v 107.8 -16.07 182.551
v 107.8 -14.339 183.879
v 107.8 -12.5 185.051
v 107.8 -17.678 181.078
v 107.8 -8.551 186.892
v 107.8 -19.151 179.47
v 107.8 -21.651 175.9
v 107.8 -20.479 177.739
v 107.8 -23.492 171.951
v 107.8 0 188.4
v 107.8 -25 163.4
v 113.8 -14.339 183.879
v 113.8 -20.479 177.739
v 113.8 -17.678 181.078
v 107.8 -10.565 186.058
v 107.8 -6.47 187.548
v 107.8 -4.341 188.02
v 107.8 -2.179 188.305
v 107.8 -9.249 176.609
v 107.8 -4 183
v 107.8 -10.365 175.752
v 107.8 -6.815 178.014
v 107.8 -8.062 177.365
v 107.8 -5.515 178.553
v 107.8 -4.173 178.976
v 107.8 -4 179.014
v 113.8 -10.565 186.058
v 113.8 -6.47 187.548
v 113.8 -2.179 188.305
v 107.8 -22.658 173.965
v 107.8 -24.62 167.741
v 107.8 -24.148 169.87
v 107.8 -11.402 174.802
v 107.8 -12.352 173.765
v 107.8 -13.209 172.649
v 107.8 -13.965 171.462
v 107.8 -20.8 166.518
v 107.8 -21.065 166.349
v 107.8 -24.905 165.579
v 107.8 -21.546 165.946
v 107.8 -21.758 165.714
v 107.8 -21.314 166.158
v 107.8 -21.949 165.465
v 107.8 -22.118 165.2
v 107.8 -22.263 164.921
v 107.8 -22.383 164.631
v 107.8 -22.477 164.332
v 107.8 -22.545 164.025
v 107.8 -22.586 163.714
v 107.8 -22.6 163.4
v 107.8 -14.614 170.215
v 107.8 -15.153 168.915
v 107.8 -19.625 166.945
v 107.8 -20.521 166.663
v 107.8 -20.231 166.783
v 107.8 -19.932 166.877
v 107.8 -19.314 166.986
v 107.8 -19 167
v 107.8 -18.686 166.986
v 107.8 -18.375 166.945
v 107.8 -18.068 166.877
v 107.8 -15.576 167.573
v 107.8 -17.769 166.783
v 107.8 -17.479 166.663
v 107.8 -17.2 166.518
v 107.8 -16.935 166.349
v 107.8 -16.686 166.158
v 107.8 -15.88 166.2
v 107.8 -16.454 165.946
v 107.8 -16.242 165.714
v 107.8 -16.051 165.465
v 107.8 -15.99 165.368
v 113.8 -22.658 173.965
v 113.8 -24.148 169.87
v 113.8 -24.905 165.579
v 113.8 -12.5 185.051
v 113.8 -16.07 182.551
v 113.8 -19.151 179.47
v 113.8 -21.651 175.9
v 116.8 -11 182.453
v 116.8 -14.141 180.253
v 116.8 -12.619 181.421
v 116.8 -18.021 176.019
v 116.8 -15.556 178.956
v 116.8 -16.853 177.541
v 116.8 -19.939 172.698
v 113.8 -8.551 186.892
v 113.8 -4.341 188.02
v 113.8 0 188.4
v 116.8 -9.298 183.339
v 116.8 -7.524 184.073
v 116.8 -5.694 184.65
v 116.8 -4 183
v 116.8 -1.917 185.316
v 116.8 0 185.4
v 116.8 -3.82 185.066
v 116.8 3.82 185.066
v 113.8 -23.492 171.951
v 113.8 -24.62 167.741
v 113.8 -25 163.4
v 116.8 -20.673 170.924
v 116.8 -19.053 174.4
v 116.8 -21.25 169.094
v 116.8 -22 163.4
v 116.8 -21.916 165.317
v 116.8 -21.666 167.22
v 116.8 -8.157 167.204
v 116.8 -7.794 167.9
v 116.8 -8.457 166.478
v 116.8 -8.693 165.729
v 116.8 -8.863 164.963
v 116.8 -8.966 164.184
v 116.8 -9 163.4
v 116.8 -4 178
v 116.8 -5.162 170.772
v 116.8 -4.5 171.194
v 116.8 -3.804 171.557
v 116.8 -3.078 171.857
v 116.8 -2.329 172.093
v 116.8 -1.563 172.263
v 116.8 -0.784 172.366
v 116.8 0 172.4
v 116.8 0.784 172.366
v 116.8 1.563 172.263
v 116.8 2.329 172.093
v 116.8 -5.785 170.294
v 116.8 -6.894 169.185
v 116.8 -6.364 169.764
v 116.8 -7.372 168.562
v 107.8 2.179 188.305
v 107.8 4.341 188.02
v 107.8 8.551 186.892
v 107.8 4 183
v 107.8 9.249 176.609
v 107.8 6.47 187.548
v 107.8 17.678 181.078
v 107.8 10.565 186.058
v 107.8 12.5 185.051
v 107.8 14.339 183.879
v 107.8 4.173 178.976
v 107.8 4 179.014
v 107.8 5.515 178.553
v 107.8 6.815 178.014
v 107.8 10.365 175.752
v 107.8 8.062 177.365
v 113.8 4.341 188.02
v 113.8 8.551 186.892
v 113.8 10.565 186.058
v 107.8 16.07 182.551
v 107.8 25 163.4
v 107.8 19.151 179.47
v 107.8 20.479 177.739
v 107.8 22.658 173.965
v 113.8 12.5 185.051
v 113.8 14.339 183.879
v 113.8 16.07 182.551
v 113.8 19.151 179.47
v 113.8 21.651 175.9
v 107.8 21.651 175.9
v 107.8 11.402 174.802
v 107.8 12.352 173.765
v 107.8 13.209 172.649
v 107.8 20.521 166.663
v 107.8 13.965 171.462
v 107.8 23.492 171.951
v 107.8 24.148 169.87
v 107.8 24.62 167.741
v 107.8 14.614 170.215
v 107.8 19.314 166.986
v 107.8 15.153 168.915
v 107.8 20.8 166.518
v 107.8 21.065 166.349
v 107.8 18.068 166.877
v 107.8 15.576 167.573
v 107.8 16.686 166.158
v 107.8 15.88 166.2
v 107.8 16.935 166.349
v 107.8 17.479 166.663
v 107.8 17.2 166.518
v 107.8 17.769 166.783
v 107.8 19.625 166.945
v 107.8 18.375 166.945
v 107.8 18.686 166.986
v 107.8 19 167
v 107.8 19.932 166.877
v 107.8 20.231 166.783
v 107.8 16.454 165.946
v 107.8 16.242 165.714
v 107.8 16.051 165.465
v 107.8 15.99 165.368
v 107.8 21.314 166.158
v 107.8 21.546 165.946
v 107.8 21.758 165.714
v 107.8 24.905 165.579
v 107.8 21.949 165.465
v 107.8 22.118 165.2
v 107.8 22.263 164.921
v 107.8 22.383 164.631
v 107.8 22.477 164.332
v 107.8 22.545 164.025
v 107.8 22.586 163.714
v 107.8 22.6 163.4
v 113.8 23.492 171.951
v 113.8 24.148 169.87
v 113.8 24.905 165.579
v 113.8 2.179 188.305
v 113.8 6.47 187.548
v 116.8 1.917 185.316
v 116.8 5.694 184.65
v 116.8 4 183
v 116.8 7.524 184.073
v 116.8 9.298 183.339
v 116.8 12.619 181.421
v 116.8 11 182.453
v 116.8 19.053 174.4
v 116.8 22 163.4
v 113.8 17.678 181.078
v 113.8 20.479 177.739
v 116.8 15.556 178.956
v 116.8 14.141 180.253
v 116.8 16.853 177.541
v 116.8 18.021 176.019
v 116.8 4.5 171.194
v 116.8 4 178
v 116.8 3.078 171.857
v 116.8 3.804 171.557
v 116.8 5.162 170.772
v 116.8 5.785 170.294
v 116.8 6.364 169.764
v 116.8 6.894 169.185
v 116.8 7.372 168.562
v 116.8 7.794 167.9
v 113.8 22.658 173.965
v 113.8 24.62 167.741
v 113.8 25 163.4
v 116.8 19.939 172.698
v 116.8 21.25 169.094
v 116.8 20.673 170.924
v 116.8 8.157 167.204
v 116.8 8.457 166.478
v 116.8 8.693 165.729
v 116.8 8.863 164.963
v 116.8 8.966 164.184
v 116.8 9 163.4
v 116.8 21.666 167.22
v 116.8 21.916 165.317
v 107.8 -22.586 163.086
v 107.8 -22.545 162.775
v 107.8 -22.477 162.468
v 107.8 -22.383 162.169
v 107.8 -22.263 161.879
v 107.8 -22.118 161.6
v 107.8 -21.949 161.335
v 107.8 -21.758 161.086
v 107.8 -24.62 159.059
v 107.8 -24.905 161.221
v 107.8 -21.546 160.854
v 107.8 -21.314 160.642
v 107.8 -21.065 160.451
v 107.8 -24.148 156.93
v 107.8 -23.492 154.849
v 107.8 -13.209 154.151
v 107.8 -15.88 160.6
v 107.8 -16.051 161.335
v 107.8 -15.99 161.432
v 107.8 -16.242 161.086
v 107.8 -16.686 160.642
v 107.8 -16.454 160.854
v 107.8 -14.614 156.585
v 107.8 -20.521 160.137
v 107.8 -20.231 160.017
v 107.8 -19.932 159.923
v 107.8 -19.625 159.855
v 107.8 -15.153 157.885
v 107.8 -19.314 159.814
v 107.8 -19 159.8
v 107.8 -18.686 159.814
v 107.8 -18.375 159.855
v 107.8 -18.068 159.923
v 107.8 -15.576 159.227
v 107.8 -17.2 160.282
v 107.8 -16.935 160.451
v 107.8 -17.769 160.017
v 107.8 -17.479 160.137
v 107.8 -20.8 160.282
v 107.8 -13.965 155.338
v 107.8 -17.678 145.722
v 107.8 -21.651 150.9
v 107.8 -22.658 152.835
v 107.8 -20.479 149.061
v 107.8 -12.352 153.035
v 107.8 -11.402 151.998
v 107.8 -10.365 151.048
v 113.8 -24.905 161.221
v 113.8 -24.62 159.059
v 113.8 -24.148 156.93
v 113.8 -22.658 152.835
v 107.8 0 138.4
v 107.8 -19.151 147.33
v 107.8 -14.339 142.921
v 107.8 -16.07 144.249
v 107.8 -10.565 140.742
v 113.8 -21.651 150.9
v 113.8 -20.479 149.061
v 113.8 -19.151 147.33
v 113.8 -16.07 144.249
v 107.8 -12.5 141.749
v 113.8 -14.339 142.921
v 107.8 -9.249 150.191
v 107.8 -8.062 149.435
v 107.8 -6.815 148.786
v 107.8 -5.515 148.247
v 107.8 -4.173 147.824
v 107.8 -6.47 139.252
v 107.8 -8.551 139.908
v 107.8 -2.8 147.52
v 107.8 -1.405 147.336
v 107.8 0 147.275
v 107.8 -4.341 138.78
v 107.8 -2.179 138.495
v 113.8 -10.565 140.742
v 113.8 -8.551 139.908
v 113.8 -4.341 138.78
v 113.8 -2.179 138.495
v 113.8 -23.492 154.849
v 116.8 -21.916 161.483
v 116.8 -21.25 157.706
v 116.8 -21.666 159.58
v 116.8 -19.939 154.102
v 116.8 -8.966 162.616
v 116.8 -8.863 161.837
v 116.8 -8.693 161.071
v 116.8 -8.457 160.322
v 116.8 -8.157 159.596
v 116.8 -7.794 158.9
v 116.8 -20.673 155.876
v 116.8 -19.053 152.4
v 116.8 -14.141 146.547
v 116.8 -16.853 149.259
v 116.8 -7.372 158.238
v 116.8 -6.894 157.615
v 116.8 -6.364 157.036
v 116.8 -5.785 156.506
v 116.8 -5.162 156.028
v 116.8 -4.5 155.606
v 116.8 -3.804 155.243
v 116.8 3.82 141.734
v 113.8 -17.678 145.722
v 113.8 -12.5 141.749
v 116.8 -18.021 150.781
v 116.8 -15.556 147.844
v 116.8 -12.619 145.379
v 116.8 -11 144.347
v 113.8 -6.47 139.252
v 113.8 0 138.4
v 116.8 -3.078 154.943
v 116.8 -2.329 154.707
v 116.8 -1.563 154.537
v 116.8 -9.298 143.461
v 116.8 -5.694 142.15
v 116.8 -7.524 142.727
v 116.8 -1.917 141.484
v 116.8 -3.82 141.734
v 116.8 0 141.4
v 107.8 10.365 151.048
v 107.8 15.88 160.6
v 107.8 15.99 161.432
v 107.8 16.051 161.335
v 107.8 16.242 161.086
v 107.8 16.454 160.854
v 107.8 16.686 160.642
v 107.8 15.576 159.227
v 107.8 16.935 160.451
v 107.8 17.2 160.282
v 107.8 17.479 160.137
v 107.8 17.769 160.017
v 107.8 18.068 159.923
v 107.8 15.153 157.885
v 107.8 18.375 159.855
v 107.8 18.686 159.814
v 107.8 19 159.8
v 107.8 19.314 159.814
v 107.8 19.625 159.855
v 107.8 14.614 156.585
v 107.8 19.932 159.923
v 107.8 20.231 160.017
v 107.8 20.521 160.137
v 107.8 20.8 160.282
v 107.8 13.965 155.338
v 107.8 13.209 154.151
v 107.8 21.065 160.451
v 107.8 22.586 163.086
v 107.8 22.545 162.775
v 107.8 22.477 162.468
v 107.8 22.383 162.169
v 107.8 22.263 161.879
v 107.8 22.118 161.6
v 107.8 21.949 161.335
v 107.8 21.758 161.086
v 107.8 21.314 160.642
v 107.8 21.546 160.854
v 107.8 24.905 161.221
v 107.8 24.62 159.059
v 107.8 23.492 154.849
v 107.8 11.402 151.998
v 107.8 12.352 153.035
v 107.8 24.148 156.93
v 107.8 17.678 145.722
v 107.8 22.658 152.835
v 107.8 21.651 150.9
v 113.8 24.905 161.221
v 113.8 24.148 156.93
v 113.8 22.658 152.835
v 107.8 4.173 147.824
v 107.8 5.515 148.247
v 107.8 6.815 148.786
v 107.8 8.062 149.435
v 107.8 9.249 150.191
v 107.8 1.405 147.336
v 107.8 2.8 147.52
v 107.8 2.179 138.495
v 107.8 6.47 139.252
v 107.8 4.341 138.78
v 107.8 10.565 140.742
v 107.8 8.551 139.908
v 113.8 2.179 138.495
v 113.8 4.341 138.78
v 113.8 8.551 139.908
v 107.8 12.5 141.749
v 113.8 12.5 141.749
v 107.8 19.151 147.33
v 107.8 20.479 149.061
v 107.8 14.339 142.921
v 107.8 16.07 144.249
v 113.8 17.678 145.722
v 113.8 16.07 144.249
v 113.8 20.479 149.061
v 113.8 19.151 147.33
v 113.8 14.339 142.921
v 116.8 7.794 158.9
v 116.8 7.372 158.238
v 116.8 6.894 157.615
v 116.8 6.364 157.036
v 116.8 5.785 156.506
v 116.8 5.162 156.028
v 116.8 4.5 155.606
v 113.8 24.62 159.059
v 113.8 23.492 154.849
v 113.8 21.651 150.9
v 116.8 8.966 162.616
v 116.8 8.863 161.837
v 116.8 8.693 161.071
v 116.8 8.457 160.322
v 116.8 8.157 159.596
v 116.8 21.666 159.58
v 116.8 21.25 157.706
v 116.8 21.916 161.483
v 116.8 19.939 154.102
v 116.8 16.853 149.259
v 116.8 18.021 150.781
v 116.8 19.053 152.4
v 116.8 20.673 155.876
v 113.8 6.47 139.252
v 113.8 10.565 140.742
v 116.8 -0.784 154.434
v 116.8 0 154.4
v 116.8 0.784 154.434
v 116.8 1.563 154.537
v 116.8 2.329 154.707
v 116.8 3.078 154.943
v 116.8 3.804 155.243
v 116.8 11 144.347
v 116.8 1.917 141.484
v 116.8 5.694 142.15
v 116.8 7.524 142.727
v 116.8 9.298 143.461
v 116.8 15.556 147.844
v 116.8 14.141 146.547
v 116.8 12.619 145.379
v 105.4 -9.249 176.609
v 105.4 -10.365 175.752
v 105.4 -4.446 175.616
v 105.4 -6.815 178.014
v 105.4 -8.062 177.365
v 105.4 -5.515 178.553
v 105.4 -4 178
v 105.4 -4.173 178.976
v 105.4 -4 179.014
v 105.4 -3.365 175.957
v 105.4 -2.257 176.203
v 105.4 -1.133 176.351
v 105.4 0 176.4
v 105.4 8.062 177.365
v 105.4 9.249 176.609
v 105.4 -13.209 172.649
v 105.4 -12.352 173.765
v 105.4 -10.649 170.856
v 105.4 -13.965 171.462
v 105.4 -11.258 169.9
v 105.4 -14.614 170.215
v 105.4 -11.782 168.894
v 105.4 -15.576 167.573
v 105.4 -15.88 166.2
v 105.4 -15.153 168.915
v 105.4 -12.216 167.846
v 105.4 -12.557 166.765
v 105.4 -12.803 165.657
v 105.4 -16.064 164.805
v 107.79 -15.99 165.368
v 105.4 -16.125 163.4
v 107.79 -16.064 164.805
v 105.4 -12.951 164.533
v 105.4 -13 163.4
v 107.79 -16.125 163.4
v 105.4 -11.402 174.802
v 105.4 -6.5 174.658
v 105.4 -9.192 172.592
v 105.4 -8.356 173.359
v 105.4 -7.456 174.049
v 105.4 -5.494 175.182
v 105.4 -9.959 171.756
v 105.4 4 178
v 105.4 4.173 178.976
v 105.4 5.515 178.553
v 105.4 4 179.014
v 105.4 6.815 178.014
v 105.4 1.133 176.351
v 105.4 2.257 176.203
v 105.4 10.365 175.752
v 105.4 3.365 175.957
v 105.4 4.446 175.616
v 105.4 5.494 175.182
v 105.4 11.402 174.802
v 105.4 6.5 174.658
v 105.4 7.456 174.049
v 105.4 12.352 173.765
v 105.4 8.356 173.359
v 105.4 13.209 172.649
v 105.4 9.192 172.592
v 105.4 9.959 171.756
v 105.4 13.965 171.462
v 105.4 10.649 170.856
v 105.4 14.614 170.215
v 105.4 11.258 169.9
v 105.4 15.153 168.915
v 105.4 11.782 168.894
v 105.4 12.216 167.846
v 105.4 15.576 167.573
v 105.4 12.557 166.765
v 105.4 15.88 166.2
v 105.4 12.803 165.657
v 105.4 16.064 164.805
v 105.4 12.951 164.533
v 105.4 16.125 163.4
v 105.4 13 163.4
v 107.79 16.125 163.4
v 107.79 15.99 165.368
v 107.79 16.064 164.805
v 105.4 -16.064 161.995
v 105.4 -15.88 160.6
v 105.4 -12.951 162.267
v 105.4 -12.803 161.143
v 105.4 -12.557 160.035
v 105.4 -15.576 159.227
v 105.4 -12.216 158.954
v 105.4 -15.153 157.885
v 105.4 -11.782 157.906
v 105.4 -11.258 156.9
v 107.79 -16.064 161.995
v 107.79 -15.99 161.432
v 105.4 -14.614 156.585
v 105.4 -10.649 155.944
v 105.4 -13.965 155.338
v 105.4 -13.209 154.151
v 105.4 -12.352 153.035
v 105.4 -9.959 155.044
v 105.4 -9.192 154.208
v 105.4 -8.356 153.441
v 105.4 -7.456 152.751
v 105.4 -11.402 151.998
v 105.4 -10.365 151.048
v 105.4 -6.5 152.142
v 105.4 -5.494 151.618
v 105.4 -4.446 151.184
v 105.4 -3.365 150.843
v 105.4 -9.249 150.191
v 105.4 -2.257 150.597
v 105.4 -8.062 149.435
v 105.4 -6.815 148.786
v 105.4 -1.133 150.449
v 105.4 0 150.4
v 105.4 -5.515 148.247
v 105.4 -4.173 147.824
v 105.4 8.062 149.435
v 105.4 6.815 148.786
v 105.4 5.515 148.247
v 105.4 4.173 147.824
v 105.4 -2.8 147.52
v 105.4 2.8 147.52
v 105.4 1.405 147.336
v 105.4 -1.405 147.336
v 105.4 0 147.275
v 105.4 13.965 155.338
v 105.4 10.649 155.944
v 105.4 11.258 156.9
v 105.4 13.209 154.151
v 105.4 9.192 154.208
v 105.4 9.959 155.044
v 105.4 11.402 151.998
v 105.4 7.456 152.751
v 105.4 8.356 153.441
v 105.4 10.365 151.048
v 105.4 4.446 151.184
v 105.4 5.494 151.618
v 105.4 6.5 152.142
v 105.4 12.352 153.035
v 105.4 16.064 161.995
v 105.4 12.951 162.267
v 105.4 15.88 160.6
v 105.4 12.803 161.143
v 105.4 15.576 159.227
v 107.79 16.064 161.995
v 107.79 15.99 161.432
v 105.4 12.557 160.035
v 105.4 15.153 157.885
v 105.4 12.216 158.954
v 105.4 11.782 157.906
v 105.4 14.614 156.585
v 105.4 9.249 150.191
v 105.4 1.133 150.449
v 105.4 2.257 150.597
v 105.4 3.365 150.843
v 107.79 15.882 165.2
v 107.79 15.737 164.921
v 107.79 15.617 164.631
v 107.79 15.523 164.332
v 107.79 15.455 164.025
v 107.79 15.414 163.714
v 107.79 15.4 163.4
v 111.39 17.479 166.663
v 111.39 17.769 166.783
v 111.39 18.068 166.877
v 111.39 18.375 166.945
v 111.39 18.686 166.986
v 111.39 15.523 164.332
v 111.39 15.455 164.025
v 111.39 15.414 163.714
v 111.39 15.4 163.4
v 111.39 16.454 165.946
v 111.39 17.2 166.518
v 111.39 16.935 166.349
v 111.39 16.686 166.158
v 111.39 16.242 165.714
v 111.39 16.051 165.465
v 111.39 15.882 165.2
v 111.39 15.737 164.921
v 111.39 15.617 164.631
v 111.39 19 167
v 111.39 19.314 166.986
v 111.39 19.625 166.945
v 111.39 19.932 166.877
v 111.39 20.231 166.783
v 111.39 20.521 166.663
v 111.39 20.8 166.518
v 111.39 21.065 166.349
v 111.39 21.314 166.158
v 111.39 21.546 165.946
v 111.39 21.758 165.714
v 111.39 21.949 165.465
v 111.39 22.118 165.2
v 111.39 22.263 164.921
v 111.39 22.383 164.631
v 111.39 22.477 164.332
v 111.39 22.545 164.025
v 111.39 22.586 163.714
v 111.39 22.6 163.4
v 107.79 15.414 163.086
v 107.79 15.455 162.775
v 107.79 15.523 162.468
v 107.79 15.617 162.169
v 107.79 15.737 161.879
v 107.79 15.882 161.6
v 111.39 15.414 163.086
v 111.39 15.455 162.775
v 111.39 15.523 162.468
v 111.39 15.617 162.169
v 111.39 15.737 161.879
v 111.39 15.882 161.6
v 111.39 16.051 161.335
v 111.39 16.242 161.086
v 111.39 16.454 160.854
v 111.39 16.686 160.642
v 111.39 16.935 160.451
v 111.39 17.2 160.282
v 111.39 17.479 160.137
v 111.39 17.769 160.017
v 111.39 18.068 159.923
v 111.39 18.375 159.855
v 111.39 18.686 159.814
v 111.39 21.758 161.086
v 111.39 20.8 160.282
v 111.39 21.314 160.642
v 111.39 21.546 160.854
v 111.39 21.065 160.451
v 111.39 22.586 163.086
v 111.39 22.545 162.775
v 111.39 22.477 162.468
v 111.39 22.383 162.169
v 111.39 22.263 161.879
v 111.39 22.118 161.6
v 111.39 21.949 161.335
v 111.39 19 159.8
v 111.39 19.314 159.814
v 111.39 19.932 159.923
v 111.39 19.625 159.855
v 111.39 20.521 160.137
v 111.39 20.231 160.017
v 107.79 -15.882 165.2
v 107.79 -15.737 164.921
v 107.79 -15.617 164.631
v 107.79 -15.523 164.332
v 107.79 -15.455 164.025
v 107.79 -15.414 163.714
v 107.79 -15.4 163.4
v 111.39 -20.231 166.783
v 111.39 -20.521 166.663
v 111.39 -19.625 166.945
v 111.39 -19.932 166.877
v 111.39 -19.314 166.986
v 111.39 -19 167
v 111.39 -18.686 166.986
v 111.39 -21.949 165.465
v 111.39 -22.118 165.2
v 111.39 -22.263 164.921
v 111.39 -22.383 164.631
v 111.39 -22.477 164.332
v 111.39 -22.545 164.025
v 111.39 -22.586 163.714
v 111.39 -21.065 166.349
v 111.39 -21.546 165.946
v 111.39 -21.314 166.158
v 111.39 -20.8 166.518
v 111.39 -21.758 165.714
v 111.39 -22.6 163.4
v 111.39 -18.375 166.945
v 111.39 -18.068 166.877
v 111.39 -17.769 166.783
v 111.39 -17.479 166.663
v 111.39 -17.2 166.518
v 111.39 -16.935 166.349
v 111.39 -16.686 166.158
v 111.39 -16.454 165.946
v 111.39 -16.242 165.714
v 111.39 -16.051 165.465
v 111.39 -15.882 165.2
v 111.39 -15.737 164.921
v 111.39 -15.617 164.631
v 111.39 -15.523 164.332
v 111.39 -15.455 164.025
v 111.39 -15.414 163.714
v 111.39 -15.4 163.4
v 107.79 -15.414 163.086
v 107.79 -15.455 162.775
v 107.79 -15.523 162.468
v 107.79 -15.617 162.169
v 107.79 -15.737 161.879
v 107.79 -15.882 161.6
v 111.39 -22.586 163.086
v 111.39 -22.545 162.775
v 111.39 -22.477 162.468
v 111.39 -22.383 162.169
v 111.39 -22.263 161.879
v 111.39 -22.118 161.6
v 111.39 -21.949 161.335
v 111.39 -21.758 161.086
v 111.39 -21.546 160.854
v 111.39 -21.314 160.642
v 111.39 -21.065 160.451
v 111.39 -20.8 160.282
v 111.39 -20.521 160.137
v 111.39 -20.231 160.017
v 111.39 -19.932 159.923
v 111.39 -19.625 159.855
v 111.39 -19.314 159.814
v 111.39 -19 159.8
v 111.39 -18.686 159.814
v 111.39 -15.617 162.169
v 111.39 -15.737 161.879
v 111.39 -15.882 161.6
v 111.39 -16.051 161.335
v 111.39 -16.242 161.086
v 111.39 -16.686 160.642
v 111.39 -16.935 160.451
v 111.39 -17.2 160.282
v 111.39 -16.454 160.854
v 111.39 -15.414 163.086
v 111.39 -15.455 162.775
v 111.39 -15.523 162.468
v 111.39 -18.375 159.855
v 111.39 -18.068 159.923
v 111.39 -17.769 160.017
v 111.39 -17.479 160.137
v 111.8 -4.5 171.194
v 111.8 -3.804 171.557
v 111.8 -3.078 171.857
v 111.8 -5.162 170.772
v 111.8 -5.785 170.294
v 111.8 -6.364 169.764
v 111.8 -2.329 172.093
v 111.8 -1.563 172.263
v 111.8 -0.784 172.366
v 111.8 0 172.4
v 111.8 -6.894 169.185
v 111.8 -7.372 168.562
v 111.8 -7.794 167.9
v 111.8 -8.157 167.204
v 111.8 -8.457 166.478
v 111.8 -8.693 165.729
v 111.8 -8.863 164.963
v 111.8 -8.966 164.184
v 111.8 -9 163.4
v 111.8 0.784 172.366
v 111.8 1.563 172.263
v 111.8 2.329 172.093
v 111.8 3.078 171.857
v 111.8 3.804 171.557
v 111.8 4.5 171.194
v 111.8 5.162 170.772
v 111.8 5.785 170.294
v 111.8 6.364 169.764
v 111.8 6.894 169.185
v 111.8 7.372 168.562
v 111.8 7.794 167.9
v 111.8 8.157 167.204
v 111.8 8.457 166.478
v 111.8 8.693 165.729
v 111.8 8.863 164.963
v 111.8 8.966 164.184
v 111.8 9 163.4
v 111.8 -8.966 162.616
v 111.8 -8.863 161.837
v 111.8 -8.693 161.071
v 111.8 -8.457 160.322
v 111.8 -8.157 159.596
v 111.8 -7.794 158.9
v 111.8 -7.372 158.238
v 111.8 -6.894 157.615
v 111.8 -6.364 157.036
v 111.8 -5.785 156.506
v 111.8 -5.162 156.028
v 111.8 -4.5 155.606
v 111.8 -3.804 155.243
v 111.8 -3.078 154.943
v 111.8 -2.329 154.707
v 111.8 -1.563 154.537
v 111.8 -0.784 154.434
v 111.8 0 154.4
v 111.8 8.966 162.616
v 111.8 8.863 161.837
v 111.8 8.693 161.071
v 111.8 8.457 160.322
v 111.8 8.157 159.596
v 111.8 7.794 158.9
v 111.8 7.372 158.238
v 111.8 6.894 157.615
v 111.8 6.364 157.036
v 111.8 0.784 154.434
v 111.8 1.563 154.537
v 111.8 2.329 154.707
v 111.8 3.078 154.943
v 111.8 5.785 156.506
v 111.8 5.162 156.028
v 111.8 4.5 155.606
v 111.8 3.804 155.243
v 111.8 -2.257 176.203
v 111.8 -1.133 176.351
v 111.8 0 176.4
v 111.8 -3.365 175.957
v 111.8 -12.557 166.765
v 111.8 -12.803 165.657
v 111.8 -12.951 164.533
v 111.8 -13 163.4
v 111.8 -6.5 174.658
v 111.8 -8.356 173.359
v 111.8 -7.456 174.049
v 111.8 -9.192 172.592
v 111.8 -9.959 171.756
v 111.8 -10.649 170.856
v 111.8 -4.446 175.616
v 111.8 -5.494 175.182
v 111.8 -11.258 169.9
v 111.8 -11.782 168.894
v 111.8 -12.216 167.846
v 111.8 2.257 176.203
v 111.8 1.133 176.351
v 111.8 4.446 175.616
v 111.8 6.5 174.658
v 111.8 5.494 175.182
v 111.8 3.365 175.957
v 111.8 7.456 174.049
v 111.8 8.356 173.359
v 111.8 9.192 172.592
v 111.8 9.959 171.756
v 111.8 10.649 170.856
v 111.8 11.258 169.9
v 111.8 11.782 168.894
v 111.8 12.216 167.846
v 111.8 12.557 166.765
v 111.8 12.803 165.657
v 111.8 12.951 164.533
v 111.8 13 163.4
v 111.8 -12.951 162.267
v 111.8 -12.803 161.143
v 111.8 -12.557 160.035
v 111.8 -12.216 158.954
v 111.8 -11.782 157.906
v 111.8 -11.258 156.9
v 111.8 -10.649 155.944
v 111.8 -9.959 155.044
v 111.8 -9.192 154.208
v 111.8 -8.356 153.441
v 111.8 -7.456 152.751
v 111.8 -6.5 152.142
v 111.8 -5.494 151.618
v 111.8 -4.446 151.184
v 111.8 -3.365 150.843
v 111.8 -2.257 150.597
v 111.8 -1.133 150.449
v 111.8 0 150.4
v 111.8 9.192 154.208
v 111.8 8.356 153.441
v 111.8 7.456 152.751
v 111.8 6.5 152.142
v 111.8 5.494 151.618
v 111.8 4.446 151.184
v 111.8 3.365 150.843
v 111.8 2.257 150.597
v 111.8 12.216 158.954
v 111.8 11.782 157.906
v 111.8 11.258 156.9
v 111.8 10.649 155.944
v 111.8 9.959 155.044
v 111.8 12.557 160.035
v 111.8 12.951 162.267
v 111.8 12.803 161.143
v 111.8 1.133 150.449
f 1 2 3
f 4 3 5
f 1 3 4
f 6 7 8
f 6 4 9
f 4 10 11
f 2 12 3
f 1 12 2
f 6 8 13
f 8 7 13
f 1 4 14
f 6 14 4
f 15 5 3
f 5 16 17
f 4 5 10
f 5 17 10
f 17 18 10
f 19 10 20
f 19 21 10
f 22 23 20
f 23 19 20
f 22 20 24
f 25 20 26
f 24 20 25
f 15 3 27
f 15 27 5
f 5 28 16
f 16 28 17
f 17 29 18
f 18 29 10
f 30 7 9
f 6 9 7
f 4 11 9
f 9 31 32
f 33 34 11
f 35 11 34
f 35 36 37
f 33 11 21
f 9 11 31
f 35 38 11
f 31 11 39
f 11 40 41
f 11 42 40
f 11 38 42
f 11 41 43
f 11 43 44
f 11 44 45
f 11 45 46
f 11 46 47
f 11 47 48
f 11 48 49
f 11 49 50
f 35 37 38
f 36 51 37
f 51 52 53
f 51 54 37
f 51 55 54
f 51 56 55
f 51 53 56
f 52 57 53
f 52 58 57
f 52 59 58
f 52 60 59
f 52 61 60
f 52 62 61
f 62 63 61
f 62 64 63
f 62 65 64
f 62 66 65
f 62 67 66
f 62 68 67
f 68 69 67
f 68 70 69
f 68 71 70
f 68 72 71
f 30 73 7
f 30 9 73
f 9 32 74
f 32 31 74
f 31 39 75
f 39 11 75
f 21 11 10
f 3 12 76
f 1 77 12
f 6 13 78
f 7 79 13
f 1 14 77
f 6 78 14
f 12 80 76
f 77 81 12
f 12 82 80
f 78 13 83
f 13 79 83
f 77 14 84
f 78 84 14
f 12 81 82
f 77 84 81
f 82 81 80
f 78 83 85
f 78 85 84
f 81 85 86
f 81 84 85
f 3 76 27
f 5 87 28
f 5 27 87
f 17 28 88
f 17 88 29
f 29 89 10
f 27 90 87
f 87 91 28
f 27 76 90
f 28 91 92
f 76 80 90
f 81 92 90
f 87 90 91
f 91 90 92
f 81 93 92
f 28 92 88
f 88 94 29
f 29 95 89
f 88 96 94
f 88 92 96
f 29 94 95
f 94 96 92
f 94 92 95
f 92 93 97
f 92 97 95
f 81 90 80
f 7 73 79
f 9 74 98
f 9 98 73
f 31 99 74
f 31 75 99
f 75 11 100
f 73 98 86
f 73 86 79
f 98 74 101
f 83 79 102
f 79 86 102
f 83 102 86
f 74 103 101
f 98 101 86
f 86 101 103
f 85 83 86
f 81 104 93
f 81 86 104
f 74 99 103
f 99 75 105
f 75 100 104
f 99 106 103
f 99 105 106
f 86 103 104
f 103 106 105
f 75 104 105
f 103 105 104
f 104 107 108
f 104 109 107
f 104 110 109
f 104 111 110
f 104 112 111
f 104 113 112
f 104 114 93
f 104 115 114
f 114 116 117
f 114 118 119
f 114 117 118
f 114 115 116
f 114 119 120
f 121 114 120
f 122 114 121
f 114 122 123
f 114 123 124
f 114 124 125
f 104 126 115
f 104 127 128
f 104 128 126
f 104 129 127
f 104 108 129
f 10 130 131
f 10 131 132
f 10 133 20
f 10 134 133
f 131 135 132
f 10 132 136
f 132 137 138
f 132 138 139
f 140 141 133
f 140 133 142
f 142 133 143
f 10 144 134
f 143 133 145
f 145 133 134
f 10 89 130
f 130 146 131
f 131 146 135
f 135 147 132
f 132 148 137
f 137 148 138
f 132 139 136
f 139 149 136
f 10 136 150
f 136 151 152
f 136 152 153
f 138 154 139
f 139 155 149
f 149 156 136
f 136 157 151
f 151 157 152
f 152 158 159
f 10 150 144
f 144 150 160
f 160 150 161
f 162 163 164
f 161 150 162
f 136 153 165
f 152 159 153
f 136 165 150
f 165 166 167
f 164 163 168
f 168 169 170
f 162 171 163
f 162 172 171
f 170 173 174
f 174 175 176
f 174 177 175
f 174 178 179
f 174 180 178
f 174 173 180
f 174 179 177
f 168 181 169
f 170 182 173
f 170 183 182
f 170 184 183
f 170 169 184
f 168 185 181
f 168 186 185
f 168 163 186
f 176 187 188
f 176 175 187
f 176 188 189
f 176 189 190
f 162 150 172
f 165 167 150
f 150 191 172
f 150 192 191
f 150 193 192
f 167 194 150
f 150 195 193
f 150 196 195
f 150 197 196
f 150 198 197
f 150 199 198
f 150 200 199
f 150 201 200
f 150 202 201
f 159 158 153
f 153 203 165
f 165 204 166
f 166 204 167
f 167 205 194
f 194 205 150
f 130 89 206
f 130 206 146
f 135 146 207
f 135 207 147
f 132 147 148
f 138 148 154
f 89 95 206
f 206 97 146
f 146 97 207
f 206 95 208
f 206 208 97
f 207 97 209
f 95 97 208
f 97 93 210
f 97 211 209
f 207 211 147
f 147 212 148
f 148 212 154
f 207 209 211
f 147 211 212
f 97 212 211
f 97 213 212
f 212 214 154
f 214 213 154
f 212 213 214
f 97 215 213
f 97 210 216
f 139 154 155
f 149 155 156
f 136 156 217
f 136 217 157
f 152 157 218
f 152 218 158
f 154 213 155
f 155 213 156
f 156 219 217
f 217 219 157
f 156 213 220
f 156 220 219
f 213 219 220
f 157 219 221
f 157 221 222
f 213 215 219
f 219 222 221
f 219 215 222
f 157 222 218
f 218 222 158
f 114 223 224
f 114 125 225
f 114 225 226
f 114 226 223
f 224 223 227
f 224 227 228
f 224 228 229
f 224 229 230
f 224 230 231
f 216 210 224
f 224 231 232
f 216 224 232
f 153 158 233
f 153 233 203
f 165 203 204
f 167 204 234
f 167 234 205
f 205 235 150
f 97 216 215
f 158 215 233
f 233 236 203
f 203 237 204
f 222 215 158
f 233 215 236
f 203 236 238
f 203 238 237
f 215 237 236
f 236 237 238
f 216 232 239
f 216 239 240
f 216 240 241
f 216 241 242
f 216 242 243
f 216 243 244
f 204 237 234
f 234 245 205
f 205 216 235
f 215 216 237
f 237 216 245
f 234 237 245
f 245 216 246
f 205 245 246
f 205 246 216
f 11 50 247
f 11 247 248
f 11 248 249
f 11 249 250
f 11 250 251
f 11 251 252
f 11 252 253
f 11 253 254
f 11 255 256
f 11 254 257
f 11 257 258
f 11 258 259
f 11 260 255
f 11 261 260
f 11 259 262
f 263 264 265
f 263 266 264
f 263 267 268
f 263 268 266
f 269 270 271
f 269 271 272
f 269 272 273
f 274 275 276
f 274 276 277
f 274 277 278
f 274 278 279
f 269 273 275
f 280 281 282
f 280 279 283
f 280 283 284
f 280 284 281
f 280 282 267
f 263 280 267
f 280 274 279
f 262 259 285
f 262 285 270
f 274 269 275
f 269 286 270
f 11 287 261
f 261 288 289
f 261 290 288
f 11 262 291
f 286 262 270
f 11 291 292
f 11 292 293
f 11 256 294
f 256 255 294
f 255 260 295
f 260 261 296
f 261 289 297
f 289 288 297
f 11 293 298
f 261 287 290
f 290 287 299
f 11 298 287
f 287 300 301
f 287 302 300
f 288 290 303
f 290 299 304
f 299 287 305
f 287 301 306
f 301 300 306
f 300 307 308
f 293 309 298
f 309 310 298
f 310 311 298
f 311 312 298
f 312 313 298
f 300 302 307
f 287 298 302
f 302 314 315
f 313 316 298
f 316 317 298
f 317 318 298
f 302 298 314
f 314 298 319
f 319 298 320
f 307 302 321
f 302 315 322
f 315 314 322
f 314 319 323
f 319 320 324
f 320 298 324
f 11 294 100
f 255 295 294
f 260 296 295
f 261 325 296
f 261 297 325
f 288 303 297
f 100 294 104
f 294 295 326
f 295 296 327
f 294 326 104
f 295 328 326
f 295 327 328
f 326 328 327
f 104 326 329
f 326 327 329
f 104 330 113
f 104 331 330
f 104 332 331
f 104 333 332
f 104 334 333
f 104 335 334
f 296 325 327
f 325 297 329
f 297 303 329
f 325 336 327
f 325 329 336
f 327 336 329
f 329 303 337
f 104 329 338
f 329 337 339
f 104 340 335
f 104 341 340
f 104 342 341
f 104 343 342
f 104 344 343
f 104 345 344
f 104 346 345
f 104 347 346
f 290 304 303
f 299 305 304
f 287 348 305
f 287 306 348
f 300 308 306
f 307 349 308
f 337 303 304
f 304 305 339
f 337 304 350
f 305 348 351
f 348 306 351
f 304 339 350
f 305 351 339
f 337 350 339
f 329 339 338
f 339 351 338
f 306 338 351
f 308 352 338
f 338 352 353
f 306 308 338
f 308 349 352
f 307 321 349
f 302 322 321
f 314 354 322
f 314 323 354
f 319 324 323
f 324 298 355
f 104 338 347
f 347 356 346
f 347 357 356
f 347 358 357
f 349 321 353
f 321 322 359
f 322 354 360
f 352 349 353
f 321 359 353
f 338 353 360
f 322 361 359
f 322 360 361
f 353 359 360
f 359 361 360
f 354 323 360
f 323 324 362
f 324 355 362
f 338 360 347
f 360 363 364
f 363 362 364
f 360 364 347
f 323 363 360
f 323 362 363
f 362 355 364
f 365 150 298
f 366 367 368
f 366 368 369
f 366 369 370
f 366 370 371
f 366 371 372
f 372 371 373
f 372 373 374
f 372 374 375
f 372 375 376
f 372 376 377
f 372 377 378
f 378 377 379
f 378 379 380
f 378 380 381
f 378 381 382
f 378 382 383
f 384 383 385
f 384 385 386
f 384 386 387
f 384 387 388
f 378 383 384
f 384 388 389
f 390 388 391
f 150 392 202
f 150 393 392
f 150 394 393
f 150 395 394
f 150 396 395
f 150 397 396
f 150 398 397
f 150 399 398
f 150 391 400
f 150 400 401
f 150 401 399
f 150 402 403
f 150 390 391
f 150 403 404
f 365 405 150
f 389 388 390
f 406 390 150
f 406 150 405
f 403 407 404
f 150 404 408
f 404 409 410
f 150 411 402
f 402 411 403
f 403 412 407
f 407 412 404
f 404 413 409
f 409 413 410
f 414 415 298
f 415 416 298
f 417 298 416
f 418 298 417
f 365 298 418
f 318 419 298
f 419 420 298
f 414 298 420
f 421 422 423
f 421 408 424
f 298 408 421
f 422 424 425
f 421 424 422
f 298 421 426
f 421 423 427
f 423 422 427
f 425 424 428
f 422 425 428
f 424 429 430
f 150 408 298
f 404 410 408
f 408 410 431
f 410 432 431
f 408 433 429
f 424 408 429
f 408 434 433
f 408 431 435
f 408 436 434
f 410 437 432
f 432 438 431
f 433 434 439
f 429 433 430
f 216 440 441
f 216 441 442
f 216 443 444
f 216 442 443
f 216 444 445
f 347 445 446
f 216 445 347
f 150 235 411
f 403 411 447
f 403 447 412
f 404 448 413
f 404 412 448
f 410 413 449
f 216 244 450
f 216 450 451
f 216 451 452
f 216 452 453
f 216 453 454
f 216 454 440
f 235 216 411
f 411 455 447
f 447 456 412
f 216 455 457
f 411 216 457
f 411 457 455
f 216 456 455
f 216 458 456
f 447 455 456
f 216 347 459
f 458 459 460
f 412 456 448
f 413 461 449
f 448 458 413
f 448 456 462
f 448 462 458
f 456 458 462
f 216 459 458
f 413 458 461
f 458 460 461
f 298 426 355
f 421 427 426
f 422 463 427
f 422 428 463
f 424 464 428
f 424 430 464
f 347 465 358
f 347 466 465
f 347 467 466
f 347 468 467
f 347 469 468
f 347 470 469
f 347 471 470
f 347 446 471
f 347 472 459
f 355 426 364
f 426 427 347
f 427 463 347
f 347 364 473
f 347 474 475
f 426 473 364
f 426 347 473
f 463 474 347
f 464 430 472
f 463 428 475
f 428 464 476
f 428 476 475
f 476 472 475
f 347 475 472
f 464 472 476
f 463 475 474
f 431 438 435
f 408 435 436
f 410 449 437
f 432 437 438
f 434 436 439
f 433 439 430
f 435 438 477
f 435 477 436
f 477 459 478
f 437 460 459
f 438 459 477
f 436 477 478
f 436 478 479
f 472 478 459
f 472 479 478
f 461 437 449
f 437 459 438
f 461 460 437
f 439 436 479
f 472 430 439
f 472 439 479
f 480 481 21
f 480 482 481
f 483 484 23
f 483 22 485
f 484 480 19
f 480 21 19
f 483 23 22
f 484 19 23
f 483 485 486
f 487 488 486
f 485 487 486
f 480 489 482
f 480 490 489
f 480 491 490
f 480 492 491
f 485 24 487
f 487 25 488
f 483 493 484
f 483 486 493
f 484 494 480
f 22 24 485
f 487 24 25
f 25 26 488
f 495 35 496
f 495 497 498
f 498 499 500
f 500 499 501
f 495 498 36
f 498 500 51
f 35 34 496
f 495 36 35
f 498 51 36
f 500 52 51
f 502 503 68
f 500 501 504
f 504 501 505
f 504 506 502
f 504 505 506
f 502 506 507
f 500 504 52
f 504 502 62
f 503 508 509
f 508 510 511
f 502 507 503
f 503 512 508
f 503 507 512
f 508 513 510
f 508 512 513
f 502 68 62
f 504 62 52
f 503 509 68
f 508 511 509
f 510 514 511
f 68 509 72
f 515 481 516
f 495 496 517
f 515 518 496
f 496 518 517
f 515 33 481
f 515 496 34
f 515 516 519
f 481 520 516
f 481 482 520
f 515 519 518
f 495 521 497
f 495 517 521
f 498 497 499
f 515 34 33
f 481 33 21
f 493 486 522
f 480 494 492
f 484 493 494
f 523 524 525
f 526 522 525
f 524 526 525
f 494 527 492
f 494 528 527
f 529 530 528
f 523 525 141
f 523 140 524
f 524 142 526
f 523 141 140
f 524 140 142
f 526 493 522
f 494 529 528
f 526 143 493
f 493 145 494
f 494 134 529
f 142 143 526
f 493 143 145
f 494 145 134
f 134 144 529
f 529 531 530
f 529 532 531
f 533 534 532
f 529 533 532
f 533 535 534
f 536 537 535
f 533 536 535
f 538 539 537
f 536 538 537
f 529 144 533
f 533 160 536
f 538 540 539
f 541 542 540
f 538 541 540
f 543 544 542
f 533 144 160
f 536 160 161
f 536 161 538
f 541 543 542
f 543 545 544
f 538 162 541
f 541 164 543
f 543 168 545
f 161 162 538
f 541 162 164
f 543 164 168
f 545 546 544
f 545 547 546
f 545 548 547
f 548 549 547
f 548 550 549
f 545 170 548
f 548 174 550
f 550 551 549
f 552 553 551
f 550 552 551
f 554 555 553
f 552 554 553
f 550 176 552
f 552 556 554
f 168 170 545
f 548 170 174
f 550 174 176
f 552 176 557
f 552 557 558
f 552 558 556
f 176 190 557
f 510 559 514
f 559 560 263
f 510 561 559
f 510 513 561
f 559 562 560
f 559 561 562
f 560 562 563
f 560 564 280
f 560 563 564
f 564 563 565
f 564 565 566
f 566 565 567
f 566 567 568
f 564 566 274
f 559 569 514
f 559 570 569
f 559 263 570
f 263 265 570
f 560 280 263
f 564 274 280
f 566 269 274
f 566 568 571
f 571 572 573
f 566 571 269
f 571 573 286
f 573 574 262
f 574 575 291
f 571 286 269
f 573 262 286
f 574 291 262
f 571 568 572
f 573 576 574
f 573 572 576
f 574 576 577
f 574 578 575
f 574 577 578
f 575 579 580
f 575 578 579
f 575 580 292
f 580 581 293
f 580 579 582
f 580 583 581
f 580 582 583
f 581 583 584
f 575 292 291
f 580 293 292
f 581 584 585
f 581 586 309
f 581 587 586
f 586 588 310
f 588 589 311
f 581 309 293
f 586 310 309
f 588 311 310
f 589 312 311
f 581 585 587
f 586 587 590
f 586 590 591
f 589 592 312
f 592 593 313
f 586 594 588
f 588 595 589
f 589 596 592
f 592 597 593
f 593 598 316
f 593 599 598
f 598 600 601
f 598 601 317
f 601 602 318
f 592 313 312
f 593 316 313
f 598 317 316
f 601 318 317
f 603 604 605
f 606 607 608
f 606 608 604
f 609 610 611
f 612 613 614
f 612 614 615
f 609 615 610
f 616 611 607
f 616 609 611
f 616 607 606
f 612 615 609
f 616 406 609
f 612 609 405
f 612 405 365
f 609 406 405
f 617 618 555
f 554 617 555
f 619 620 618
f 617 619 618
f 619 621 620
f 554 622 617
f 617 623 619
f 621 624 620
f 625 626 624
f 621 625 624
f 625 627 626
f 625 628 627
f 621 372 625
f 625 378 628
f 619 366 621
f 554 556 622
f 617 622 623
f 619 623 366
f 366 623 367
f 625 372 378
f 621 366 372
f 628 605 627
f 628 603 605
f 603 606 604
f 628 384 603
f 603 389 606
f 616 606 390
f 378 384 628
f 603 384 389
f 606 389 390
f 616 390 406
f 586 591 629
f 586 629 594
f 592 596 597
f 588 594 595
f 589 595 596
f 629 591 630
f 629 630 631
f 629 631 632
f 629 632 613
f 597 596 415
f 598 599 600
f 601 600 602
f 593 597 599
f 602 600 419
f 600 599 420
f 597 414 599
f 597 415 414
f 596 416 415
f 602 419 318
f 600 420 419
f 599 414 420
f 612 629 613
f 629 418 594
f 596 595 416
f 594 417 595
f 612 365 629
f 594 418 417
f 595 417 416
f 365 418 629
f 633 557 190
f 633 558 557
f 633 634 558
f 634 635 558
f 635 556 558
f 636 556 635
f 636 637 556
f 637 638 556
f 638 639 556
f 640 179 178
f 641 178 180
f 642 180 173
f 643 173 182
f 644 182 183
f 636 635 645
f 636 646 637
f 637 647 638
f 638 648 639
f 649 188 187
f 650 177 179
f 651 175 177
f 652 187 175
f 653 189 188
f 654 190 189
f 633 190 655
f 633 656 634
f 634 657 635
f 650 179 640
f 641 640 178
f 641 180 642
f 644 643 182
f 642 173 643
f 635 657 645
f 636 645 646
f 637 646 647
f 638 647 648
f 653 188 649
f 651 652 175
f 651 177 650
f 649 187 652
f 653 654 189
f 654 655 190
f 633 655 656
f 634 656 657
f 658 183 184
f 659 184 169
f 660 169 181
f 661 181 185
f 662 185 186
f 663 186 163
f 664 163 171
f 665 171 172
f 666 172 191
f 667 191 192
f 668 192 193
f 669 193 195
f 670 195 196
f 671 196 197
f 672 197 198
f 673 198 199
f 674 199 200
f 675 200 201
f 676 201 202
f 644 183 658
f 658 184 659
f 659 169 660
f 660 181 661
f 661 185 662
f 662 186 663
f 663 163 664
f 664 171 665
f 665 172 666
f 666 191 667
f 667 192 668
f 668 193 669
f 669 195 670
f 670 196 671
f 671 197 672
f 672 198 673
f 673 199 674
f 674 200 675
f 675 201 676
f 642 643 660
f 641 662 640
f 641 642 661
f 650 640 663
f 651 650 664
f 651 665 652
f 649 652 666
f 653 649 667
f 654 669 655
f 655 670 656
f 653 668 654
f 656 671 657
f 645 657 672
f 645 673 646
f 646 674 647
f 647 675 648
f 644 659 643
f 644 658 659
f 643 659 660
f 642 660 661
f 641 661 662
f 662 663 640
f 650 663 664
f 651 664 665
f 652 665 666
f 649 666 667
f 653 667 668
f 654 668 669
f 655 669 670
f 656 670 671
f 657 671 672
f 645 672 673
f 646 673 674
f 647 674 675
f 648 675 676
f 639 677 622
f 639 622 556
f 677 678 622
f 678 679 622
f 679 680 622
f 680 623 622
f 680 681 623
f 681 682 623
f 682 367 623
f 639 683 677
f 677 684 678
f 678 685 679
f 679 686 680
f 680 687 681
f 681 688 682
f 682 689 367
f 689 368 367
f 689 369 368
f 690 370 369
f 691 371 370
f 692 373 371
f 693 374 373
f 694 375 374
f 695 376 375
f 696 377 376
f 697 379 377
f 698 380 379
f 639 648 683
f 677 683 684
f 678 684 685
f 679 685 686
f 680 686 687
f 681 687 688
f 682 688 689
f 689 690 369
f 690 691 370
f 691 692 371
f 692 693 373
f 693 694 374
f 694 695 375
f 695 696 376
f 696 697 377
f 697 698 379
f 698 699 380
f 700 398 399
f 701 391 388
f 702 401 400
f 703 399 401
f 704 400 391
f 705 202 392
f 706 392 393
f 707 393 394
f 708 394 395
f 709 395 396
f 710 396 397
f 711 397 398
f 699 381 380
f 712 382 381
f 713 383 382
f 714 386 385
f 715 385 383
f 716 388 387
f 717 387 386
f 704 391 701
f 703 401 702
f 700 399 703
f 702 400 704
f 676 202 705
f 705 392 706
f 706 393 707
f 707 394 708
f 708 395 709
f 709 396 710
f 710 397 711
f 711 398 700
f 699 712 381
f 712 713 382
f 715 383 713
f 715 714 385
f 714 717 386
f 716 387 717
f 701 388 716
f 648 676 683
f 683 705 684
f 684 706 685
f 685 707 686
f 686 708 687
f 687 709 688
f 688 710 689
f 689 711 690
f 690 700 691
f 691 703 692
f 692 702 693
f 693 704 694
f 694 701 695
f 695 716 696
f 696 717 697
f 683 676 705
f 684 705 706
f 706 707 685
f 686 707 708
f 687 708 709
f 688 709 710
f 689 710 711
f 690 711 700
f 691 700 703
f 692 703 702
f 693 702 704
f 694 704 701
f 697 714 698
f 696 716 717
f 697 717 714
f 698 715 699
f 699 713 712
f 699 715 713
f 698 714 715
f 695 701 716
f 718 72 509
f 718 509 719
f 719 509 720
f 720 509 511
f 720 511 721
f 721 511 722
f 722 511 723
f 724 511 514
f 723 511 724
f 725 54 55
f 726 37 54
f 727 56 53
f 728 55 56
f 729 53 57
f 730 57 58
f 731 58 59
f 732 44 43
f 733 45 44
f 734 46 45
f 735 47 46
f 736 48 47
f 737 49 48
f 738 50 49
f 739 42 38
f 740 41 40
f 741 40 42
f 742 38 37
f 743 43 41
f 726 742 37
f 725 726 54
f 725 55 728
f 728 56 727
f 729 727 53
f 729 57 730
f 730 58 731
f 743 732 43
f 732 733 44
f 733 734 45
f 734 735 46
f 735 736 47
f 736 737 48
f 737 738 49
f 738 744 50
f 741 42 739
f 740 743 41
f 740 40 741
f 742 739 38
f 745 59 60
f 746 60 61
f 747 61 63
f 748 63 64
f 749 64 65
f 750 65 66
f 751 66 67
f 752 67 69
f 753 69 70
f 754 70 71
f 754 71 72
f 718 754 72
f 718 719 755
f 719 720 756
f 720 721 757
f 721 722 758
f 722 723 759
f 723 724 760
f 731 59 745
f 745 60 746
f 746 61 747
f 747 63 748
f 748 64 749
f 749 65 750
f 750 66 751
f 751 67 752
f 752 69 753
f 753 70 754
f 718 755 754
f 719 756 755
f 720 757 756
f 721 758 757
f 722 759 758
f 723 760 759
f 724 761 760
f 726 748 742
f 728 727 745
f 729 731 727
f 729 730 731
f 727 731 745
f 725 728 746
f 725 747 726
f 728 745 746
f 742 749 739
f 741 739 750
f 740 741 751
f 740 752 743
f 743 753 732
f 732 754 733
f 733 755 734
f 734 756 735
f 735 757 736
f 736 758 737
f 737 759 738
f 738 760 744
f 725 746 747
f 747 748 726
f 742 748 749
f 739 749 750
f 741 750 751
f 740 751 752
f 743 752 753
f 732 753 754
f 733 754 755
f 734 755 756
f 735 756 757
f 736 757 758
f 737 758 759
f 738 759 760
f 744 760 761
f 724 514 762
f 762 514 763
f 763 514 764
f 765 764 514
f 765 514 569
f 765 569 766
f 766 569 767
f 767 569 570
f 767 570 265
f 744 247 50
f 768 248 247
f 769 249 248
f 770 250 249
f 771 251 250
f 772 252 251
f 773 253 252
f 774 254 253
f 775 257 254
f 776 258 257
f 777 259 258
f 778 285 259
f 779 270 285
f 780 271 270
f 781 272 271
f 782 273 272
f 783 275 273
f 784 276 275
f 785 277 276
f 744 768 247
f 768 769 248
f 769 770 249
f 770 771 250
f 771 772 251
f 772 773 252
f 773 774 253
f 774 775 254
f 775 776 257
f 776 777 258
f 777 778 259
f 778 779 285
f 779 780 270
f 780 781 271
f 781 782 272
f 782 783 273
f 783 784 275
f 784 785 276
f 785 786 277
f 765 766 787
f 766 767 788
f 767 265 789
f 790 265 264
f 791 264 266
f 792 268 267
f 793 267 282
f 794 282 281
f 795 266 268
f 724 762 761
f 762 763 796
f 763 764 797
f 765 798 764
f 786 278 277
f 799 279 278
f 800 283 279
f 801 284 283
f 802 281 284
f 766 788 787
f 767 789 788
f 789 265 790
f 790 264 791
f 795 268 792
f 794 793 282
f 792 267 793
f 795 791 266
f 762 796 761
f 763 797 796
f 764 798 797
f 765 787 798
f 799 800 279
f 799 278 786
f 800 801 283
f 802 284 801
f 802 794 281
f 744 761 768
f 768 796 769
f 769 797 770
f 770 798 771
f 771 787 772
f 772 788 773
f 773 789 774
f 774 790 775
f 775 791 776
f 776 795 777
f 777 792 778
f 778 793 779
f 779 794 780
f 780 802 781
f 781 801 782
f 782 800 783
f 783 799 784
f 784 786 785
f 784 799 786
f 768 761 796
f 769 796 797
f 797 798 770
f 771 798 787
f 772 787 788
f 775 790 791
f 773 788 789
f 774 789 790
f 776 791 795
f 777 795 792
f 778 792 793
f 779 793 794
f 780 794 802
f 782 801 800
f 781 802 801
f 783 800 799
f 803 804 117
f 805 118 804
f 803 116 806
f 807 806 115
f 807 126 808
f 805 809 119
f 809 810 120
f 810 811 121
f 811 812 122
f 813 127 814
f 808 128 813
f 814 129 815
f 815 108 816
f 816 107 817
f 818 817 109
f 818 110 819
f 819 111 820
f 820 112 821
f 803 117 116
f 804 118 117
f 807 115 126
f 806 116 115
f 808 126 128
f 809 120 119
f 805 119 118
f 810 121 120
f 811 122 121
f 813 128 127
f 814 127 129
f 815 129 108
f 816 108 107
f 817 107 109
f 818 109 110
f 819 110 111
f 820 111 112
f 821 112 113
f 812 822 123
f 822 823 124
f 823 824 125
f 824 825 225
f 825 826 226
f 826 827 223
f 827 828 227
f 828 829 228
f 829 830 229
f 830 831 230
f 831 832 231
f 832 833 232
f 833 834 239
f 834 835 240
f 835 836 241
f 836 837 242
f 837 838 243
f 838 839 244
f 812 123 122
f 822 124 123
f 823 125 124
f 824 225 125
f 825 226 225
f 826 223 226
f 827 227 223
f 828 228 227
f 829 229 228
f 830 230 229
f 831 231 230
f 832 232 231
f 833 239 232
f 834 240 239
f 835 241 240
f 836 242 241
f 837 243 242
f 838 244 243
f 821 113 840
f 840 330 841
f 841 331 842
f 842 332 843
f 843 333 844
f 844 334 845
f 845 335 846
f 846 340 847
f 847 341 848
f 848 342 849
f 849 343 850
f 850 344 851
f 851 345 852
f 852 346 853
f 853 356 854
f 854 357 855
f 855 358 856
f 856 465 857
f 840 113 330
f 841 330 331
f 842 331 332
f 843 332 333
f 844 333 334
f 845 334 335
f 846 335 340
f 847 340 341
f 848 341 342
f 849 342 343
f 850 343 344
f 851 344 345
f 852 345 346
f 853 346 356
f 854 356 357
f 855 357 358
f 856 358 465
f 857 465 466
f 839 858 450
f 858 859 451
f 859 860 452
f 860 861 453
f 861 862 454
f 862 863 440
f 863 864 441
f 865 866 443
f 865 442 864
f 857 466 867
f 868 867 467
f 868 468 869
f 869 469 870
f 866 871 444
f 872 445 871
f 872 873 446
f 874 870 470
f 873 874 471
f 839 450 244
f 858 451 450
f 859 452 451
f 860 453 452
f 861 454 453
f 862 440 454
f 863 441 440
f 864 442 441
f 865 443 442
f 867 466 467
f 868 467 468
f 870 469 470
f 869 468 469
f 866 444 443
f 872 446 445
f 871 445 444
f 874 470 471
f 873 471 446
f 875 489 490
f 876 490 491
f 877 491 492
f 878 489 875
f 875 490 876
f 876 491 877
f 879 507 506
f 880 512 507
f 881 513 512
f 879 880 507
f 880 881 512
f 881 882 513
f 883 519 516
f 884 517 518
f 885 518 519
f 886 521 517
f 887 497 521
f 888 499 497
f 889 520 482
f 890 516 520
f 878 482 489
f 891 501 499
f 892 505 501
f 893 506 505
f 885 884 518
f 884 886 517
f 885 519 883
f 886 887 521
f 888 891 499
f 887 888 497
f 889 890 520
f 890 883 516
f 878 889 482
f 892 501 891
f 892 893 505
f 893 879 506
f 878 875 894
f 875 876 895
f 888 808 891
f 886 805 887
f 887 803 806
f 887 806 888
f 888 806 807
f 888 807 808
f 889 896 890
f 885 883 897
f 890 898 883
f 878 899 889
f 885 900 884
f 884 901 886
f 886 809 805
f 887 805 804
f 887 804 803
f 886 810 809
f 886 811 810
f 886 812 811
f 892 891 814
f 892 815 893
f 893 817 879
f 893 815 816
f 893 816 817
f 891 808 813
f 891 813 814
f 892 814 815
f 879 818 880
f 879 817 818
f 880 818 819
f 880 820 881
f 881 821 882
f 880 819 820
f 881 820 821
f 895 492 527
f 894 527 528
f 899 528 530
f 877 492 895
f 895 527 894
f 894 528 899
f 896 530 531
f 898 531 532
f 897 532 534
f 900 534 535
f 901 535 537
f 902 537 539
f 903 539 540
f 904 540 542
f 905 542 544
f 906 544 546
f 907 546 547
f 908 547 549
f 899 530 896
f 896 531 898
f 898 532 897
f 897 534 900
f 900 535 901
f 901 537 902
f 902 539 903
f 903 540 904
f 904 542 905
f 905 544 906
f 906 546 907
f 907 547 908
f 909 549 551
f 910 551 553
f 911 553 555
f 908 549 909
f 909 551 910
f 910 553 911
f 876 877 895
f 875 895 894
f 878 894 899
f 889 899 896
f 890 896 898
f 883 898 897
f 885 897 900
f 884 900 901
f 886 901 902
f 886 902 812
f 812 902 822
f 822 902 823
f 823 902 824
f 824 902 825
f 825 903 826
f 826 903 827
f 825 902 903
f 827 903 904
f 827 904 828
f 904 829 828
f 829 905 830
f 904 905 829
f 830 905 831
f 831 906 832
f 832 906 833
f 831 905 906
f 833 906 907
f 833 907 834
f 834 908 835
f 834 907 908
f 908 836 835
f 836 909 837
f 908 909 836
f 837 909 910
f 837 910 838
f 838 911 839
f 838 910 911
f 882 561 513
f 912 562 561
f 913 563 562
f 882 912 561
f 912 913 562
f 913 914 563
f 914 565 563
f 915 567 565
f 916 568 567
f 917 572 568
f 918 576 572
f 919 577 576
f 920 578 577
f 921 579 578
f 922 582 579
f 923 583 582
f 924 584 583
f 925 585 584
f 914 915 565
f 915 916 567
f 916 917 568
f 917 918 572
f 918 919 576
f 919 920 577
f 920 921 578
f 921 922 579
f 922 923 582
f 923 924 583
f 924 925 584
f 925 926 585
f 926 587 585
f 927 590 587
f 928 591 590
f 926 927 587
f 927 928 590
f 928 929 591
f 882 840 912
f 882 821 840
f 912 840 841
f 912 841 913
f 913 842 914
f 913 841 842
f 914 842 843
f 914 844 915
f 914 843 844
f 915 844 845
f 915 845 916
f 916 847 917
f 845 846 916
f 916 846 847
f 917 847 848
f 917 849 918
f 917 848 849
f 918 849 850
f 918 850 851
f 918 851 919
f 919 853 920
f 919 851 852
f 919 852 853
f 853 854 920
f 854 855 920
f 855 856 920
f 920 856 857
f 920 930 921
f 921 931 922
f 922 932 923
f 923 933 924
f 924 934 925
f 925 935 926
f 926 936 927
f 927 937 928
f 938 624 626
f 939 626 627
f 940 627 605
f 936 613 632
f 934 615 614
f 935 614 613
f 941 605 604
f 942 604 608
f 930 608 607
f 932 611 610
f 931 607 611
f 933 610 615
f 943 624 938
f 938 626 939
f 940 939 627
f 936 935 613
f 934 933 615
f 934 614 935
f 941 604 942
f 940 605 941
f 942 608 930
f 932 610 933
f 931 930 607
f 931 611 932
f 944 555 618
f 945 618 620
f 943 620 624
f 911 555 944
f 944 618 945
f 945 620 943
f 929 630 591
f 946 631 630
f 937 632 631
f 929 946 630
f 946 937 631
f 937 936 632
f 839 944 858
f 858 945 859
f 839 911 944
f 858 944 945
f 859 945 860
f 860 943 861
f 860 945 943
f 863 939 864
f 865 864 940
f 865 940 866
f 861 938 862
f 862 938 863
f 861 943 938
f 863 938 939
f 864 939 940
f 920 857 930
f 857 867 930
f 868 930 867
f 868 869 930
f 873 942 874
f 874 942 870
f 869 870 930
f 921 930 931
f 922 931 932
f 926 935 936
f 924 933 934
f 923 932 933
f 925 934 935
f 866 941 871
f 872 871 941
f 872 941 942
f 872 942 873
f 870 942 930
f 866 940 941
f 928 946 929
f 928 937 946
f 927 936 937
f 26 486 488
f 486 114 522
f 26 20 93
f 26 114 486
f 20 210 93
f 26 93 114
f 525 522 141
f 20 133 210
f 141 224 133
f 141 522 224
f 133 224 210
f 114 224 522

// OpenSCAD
// file: ../md_params.scad
// =====================================================================
//  Microduck-look skin for the Open Duck Mini v2 skeleton
//  Shared parameters and helpers.
//  Frame: Open Duck print/robot frame, mm. +x forward, +y left, +z up.
//  Every part is modelled where it sits on the robot (zero pose).
// =====================================================================

$fn = 72;
EPS = 0.01;

// ---------- fasteners ----------
INSERT_D   = 4.0;   // hole for M3 x 5 brass heat-set insert (Amazon B0DZ8B7FW1)
INSERT_L   = 6.0;   // hole depth for that insert
M3_CLR     = 3.4;   // M3 clearance
M3_HEAD    = 6.5;   // M3 socket-head counterbore
M3_NUT     = 6.4;   // M3 nut across corners (+clearance)
M2_TAP     = 1.8;   // M2 self-tapping pilot (SG90 tab screws, servo adapter)
M25_TAP    = 2.2;   // M2.5 self-tapping pilot (Radxa)
M2_CLR     = 2.4;

// ---------- colours (for previews only) ----------
C_WHITE = [0.95, 0.94, 0.90];
C_BLACK = [0.13, 0.13, 0.14];

// ---------- helpers ----------
function lerp(a, b, t) = a + (b - a) * t;

// Section with vertical sides from zb to zc and a superellipse cap from zc to zt.
// Points are (y, z). n = 2 gives an ellipse, larger n gives a squarer top.
function se_pts(w, zb, zc, zt, n, N = 56) =
    concat(
        [[ w, zb]],
        [for (i = [0:N]) let(t = i * 180 / N, c = cos(t), s = sin(t))
            [w * sign(c) * pow(abs(c), 2 / n), zc + (zt - zc) * pow(abs(s), 2 / n)]],
        [[-w, zb]]
    );

// st = [x, half_width, z_bottom, z_curve_start, z_top, exponent]
module station(st, inset = 0, ext = 0) {
    translate([st[0], 0, 0]) rotate([90, 0, 90])
        linear_extrude(height = EPS, center = true)
            offset(delta = -inset)
                polygon(se_pts(st[1], st[2] - ext, st[3], st[4], st[5]));
}

// piecewise loft through convex stations (hull of neighbours)
module loft(sts, inset = 0, ext = 0) {
    for (i = [0:len(sts) - 2])
        hull() { station(sts[i], inset, ext); station(sts[i + 1], inset, ext); }
}

// station parameters interpolated at any x inside the list
function st_at(sts, x) =
    let(i = max([for (k = [0:len(sts) - 2]) if (sts[k][0] <= x) k]),
        a = sts[i], b = sts[i + 1], t = (x - a[0]) / (b[0] - a[0]))
    [x, lerp(a[1], b[1], t), lerp(a[2], b[2], t), lerp(a[3], b[3], t),
        lerp(a[4], b[4], t), lerp(a[5], b[5], t)];

// heat-set insert pocket: opening at origin, going along -z by default
module insert_hole(depth = INSERT_L, d = INSERT_D) {
    translate([0, 0, -depth]) cylinder(d = d, h = depth + EPS);
    translate([0, 0, -0.6]) cylinder(d1 = d, d2 = d + 0.8, h = 0.6 + EPS);   // lead-in chamfer
}

// M3 clearance with counterbore, axis +z, counterbore at the top
module m3_cb(len_total, cb_depth) {
    translate([0, 0, -EPS]) cylinder(d = M3_CLR, h = len_total + 2 * EPS);
    translate([0, 0, len_total - cb_depth]) cylinder(d = M3_HEAD, h = cb_depth + 1);
}

module rrect(x0, x1, y0, y1, r) {
    translate([x0 + r, y0 + r]) offset(r = r) square([x1 - x0 - 2 * r, y1 - y0 - 2 * r]);
}
// main file
include <../md_params.scad>
include <../md_head.scad>
eye_bezel();
